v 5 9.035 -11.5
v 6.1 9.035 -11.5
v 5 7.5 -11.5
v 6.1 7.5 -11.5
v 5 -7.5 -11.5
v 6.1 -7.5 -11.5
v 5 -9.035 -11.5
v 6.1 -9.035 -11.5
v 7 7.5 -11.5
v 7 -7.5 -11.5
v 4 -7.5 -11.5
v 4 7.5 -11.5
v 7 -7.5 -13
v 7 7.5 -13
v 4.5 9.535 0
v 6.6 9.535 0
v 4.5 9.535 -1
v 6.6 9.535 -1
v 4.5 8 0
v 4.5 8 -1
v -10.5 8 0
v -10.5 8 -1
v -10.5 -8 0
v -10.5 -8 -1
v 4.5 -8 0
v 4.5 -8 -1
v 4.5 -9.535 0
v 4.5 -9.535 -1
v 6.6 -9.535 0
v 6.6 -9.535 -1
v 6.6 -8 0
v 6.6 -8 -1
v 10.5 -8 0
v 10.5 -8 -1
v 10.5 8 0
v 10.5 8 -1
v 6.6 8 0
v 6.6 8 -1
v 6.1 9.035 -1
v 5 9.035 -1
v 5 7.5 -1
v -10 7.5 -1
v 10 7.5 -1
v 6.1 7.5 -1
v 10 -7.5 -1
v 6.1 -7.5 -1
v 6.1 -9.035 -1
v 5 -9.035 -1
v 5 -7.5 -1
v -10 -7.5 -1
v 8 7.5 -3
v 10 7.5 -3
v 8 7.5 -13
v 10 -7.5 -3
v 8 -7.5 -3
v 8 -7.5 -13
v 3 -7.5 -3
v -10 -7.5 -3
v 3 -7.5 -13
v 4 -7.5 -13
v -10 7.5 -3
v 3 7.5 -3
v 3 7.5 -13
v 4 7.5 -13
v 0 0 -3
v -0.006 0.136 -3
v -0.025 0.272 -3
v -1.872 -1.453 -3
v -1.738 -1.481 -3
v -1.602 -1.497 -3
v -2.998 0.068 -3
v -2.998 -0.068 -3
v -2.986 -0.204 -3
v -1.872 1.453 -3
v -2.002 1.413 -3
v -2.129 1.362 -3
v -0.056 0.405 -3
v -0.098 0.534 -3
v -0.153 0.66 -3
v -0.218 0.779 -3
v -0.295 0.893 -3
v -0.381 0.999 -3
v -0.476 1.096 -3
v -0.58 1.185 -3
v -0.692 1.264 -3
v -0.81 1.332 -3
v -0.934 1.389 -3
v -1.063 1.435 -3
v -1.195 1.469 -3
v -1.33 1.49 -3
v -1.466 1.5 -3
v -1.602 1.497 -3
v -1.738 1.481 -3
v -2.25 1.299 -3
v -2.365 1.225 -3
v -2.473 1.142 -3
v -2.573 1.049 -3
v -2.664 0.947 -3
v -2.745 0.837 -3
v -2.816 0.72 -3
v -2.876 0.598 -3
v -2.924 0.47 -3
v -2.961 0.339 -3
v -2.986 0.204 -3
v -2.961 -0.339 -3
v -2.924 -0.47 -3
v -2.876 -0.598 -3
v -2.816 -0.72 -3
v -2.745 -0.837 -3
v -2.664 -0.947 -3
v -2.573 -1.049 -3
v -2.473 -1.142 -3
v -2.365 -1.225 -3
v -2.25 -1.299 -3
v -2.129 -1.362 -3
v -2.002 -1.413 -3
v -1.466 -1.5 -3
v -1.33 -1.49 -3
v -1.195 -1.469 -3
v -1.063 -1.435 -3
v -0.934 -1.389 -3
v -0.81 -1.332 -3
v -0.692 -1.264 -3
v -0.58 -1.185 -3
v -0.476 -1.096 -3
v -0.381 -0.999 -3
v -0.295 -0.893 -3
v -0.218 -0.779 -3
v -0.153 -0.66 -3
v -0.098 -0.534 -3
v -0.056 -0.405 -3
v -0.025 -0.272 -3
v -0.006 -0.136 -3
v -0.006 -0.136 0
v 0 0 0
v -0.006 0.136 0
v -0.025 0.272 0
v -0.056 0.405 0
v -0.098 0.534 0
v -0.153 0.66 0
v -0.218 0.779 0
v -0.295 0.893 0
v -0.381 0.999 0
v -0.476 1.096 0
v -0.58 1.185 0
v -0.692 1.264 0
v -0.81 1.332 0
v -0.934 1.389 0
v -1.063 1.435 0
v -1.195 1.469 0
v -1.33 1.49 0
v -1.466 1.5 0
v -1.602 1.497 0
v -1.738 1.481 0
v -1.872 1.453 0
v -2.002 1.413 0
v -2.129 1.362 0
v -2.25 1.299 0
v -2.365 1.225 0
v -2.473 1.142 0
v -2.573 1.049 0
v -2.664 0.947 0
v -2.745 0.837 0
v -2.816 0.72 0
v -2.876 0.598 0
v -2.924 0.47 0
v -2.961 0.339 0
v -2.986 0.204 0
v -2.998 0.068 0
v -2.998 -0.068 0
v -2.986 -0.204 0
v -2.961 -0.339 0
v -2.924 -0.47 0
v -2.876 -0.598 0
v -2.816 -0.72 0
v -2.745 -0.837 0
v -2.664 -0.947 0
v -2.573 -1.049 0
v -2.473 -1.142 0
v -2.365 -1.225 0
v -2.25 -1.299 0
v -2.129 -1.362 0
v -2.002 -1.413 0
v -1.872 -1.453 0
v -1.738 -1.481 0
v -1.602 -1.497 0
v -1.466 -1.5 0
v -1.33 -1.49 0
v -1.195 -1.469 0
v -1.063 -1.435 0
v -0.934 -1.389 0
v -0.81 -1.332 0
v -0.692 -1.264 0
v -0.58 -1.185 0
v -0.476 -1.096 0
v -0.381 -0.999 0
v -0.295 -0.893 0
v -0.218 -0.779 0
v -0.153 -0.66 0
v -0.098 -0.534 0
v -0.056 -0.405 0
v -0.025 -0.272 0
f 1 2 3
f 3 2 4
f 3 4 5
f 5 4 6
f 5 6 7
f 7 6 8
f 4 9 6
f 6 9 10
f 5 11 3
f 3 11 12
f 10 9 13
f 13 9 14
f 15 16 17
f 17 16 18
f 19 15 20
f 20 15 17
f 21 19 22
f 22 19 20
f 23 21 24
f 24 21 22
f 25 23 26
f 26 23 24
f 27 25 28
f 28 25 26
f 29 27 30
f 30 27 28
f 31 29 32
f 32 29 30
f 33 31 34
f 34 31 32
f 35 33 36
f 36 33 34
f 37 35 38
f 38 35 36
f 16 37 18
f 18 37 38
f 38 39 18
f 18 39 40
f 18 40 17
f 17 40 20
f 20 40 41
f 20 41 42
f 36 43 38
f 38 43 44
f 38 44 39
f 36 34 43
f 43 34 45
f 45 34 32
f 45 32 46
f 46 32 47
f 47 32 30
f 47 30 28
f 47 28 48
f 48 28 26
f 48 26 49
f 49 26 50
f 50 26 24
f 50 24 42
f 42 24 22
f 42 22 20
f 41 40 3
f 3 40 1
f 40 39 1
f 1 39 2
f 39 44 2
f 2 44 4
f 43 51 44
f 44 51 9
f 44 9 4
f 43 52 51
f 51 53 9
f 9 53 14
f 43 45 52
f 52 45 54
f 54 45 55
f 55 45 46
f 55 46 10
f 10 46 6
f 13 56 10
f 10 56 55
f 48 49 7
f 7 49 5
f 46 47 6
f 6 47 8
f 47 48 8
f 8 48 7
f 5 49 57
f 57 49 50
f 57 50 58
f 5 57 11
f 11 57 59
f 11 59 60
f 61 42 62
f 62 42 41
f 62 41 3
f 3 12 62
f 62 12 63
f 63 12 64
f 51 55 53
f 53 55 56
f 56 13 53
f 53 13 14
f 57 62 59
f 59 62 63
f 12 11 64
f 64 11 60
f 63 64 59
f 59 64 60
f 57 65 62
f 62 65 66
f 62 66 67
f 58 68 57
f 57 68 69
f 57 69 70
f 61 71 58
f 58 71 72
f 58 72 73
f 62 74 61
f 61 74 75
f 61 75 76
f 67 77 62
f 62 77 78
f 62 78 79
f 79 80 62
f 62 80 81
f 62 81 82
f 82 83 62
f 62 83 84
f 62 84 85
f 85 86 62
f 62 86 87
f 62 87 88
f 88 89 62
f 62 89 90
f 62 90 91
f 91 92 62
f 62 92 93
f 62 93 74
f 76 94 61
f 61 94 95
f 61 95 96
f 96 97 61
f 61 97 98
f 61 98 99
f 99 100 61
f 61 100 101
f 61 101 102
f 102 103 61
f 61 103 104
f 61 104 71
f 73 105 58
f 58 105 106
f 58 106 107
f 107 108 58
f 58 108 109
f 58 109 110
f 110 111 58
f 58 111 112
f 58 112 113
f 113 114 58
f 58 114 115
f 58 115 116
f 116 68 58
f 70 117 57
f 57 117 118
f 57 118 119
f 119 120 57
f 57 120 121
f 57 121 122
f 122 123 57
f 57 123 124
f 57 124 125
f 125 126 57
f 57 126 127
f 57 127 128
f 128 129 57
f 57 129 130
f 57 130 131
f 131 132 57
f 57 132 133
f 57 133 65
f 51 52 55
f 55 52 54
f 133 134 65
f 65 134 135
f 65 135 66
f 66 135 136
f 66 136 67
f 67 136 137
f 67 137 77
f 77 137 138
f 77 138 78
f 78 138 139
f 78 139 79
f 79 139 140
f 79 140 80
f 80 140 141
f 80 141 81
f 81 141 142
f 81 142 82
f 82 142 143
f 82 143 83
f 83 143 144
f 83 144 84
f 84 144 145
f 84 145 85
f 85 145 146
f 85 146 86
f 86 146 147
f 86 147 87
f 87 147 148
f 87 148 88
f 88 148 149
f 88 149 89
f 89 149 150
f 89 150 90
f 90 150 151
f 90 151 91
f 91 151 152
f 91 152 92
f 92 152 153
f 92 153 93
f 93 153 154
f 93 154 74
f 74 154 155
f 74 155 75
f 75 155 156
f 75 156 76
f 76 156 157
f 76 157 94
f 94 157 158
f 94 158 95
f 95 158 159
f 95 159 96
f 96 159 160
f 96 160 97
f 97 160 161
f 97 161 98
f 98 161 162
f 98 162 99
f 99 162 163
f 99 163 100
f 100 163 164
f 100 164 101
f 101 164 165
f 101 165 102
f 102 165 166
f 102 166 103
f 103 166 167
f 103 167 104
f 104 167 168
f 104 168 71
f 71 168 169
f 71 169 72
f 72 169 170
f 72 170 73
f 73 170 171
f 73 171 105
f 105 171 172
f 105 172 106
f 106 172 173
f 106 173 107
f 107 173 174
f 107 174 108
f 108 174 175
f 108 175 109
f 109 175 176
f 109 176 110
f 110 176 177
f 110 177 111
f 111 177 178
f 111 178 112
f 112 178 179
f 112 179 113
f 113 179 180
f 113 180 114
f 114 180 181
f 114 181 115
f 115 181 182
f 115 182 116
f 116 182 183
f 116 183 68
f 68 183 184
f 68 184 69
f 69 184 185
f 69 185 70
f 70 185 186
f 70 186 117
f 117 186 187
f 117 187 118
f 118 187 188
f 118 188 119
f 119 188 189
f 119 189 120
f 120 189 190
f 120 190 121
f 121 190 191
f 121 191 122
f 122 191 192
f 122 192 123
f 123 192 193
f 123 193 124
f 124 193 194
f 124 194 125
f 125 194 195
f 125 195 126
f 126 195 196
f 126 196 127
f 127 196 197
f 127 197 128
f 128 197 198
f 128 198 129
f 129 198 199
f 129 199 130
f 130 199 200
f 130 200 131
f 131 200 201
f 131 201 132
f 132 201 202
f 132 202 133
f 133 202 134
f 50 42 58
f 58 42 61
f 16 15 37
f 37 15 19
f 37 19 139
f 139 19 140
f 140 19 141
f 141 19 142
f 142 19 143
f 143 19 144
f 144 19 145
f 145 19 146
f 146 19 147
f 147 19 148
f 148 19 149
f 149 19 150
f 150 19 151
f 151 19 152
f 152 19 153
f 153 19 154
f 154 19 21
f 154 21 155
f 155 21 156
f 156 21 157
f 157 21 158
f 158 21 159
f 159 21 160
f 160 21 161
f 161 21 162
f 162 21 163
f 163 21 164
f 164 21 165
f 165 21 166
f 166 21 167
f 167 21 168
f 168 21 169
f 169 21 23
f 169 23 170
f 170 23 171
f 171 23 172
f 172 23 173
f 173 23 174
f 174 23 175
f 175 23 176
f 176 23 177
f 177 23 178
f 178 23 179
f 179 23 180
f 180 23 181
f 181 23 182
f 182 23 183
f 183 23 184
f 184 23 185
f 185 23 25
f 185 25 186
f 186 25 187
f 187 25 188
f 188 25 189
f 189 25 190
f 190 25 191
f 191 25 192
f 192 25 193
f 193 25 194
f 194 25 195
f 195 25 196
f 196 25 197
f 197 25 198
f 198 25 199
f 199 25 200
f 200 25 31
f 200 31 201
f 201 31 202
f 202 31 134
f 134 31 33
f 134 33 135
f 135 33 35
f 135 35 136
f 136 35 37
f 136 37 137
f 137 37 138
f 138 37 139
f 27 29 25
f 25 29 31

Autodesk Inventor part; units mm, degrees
ref_plane "YZ Plane" through (0, 0, 0) normal (1, 0, 0) x (0, 1, 0)
ref_plane "XZ Plane" through (0, 0, 0) normal (0, 1, 0) x (-1, 0, 0)
ref_plane "XY Plane" through (0, 0, 0) normal (0, 0, 1) x (1, 0, 0)
sketch "Esboço1" plane through (0, 0, 0) normal (0, 0, 1) x (1, 0, 0)
  line L0 (-10, 7.5) -> (10, 7.5)
  line L1 (10, 7.5) -> (10, -7.5)
  line L2 (10, -7.5) -> (-10, -7.5)
  line L3 (-10, -7.5) -> (-10, 7.5)
  line L4 (-10, 7.5) -> (10, -7.5) construction
  line L5 (10, 7.5) -> (-10, -7.5) construction
  circle A0 centre (-1.5, 0) radius 1.5
  point P0 (0, 0)
  dimension "d0" = 20
  dimension "d1" = 15
  dimension "d13" = 3
  dimension "d14" = 1.5
  dimension "d15" = 7.5
extrude "Extrusão1" add sketch "Esboço1" against normal blind 3
sketch "Esboço2" plane through (0, 0, -3) normal (0, 0, -1) x (-1, 0, 0)
  line L0 (10, 7.5) -> (-10, 7.5) projected
  line L1 (-4, 7.5) -> (-4, -7.5247)
  line L2 (-7, 7.5) -> (-7, -7.5)
  line L3 (-10, -7.5) -> (10, -7.5) projected
  line L4 (-3, 7.5) -> (-3, -7.5247)
  line L5 (-8, 7.5) -> (-8, -7.5)
  point P0 (0, 0)
  point P1 (0, 0)
  point P2 (-3, -7.5)
  point P3 (-4, -7.5)
  dimension "d6" = 3
  dimension "d7" = 1
  dimension "d8" = 1
  dimension "d16" = 7
extrude "Extrusão2" add sketch "Esboço2" along normal blind 10 contours L4 L3 L1 L0 | L2 L3 L5 L0
sketch "Esboço3" plane through (-10, 7.5, 0) normal (0, 1, 0) x (1, 0, 0)
  point P0 (10, 0)
sketch "Esboço4" plane through (0, 0, -3) normal (0, 0, -1) x (-1, 0, 0)
  line L0 (-7, 7.5) -> (-7, -7.5) projected
  line L1 (-7, -7.5) -> (-4, -7.5) projected
  line L2 (-4, -7.5) -> (-4, 7.5) projected
  line L3 (-4, 7.5) -> (-7, 7.5) projected
  point P0 (0, 0)
extrude "Extrusão3" add sketch "Esboço4" along normal blind 7
sketch "Sketch5" plane through (0, 0, -10) normal (0, 0, -1) x (-1, 0, 0)
  line L0 (-6.1, 0) -> (-6.1, 9.035)
  line L1 (-6.1, 9.035) -> (-5, 9.035)
  line L2 (-5, 9.035) -> (-5, 0)
  line L3 (-3, 7.5) -> (-8, 7.5) projected
  line L4 (-7.6007, 9.235) -> (-6.101, 9.235) projected
  line L5 (-4, 3.5) -> (-4, 7.373) projected
  line L6 (-7, 7.373) -> (-7, 3.5) projected
  line L7 (-6.101, -10.265) -> (-7.6007, -10.265) projected
  line L8 (-11.7517, 0) -> (0.9741, 0)
  line L9 (-6.1, 0) -> (-6.1, -9.035)
  line L10 (-6.1, -9.035) -> (-5, -9.035)
  line L11 (-5, -9.035) -> (-5, 0)
  point P0 (0, 0)
  dimension "d21" = 0.2
  dimension "d22" = 1
  dimension "d23" = 0.9
extrude "Extrusion4" add sketch "Sketch5" against normal blind 10
sketch "Sketch7" plane through (0, 0, 0) normal (0, 0, 1) x (1, 0, 0)
  circle A0 centre (-1.5, 0) radius 1.5 projected
  line L0 (6.1, -7.5) -> (10, -7.5) projected
  line L1 (10, -7.5) -> (10, 7.5) projected
  line L2 (10, 7.5) -> (6.1, 7.5) projected
  line L3 (6.1, 7.5) -> (6.1, 9.035) projected
  line L4 (6.1, 9.035) -> (5, 9.035) projected
  line L5 (5, 9.035) -> (5, 7.5) projected
  line L6 (5, 7.5) -> (-10, 7.5) projected
  line L7 (-10, 7.5) -> (-10, -7.5) projected
  line L8 (-10, -7.5) -> (5, -7.5) projected
  line L9 (5, -7.5) -> (5, -9.035) projected
  line L10 (5, -9.035) -> (6.1, -9.035) projected
  line L11 (6.1, -9.035) -> (6.1, -7.5) projected
  line L12 (10.5, 8) -> (10.5, -8)
  line L13 (10.5, -8) -> (6.6, -8)
  line L14 (6.6, -8) -> (6.6, -9.535)
  line L15 (6.6, -9.535) -> (4.5, -9.535)
  line L16 (4.5, -9.535) -> (4.5, -8)
  line L17 (4.5, -8) -> (-10.5, -8)
  line L18 (-10.5, -8) -> (-10.5, 8)
  line L19 (-10.5, 8) -> (4.5, 8)
  line L20 (4.5, 8) -> (4.5, 9.535)
  line L21 (4.5, 9.535) -> (6.6, 9.535)
  line L22 (6.6, 9.535) -> (6.6, 8)
  line L23 (6.6, 8) -> (10.5, 8)
  circle A1 centre (-1.5, 0) radius 1.5
  point P0 (0, 0)
  dimension "d32" = 0.5
extrude "Extrusion6" add sketch "Sketch7" against normal blind 1 contours L12 L13 L14 L15 L16 L17 L18 L19 L20 L21 L22 L23
sketch "Sketch8" plane through (0, 0, -10) normal (0, 0, -1) x (-1, 0, 0)
  line L0 (-6.1, 7.5) -> (-7, 7.5) projected
  line L1 (-7, -7.5) -> (-7, 7.5) projected
  line L2 (-7, -7.5) -> (-6.1, -7.5) projected
  line L3 (-6.1, -7.5) -> (-6.1, -9.035) projected
  line L4 (-6.1, -9.035) -> (-5, -9.035) projected
  line L5 (-5, -9.035) -> (-5, -7.5) projected
  line L6 (-5, -7.5) -> (-4, -7.5) projected
  line L7 (-4, 7.5) -> (-4, -7.5) projected
  line L8 (-4, 7.5) -> (-5, 7.5) projected
  line L9 (-5, 7.5) -> (-5, 9.035) projected
  line L10 (-5, 9.035) -> (-6.1, 9.035) projected
  line L11 (-6.1, 9.035) -> (-6.1, 7.5) projected
  point P0 (0, 0)
extrude "Extrusion7" add sketch "Sketch8" along normal blind 1.5
properties part number "peca2v2"
